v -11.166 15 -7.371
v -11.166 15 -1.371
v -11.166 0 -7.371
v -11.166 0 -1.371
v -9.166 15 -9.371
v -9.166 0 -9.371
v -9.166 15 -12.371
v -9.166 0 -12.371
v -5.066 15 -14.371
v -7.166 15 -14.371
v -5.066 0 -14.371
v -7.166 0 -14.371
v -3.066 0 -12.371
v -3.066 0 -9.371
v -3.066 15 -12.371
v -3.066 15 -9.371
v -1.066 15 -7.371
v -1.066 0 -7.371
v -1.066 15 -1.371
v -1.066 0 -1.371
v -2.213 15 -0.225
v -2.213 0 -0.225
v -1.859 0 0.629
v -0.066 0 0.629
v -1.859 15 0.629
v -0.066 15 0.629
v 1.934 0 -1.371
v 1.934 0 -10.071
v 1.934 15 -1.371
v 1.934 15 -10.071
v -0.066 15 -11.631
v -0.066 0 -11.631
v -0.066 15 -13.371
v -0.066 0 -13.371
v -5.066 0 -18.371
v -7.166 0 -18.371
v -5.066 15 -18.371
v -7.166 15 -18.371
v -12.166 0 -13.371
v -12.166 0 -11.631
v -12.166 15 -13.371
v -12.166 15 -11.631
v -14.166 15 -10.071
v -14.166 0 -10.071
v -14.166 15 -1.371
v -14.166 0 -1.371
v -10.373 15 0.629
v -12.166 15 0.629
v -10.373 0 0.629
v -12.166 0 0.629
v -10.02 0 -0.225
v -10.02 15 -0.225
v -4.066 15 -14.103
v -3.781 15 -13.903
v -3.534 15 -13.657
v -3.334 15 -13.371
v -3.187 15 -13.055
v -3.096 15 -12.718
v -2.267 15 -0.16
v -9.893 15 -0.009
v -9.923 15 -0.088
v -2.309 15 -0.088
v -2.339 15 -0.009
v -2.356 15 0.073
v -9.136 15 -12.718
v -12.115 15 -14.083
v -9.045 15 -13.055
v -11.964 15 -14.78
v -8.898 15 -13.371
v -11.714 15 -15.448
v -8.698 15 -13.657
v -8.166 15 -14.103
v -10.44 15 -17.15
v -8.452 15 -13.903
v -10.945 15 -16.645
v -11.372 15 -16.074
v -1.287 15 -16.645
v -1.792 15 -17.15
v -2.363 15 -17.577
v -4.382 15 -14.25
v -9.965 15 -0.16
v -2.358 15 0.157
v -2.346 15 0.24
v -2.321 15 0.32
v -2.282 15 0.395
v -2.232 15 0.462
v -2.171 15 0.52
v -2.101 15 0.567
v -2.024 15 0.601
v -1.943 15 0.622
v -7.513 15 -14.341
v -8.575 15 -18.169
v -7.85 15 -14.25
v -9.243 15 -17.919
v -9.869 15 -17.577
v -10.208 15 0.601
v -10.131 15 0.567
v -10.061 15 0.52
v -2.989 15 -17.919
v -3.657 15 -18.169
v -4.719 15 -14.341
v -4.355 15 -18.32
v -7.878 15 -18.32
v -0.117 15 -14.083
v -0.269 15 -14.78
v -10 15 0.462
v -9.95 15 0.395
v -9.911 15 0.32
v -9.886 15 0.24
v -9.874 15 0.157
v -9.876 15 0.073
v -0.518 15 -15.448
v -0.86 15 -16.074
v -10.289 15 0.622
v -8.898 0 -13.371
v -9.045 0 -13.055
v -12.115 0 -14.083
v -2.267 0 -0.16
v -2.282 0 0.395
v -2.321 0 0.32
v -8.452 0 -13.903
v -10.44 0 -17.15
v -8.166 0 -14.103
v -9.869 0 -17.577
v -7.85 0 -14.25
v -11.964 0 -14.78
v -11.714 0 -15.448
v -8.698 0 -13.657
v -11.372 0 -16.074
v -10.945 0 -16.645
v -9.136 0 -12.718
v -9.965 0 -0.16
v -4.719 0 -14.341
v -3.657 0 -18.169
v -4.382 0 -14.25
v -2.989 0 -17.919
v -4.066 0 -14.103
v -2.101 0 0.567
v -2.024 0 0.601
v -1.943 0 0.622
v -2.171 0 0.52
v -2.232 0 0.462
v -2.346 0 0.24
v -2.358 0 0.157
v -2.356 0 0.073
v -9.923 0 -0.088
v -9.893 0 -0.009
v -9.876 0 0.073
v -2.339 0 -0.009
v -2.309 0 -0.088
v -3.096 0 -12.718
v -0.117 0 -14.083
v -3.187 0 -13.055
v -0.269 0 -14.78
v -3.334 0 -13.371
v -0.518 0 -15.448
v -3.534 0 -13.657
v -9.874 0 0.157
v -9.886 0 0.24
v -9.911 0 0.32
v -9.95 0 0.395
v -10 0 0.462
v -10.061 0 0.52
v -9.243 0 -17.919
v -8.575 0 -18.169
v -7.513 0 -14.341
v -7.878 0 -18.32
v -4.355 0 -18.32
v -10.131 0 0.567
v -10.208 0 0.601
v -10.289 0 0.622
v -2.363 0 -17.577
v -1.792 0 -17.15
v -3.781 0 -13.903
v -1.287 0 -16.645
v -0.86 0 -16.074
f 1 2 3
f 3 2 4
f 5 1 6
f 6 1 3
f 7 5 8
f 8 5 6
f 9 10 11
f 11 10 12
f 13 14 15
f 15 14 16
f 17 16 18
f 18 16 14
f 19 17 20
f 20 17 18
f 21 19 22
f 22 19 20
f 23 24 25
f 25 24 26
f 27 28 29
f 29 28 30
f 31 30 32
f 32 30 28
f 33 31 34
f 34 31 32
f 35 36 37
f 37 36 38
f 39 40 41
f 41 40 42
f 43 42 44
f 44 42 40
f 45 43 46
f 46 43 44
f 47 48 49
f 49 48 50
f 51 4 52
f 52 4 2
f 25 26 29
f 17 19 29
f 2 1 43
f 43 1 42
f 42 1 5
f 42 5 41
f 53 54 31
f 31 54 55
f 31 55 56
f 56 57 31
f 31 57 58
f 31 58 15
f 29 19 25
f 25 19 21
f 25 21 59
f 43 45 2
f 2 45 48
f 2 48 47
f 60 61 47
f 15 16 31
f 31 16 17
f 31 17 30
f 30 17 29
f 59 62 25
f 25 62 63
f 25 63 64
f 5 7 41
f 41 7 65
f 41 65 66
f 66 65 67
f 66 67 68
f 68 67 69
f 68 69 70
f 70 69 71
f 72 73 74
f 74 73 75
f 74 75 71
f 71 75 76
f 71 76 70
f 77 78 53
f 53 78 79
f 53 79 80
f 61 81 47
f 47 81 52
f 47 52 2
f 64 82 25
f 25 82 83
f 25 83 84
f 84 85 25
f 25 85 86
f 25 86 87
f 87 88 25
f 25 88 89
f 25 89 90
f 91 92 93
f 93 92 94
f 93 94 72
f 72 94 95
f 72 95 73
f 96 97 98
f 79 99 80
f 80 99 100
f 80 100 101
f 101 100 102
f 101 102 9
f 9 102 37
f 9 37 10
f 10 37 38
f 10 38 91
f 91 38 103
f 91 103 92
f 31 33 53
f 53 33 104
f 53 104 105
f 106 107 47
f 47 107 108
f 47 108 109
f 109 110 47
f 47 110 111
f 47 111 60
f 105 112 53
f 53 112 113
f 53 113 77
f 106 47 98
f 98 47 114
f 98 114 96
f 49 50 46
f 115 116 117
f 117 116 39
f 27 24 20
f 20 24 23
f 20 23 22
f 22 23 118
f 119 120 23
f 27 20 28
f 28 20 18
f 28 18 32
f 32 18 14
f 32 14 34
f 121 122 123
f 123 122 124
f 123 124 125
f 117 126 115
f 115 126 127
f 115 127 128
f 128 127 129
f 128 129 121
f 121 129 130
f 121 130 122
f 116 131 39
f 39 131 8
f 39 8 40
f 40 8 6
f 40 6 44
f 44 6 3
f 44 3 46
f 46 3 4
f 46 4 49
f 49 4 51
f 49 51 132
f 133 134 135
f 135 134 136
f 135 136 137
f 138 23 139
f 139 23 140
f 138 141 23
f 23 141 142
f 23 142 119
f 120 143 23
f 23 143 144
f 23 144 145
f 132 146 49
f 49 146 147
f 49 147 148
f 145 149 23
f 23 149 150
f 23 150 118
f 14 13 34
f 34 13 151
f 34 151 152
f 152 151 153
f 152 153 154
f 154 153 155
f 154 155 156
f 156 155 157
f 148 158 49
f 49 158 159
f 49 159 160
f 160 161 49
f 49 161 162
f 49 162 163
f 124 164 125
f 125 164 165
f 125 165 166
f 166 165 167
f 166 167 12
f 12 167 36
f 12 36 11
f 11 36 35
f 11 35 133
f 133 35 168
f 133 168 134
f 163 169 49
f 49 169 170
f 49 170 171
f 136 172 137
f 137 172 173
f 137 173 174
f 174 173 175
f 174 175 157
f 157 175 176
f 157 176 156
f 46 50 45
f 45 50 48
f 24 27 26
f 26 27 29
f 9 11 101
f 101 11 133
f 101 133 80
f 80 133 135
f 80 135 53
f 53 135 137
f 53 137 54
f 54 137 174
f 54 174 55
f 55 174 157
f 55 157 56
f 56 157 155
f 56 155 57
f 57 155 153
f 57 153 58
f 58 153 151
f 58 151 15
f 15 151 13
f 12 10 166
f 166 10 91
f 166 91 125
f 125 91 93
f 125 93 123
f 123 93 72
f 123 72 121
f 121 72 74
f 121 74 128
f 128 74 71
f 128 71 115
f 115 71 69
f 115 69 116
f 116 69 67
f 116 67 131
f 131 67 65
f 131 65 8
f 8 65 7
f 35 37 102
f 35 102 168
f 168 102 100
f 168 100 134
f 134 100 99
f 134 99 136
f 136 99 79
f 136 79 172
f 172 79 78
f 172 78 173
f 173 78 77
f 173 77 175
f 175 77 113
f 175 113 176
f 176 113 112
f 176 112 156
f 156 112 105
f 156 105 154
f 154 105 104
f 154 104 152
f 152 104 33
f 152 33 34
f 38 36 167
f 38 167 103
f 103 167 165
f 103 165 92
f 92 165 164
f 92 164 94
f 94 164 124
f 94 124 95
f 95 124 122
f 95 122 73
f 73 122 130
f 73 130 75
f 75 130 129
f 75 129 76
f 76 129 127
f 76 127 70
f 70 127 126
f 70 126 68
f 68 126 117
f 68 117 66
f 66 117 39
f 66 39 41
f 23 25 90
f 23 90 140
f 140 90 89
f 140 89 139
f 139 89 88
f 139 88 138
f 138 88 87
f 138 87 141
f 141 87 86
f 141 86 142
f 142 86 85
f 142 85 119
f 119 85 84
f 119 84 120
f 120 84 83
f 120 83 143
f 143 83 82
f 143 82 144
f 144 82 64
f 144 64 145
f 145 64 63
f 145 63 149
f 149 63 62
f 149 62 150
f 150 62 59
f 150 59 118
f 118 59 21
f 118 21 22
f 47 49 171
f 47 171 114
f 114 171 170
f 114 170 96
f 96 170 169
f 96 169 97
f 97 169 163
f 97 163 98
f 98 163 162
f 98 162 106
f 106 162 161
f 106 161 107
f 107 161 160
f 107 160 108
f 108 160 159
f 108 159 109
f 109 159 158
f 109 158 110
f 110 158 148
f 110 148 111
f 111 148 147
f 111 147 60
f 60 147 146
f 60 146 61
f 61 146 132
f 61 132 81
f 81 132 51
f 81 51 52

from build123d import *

# Parameters (mm, degrees)
BOSS_EXTRUDE1_DEPTH = 15
CHAMFER1_SIZE       = 2
FILLET1_R           = 2
FILLET3_R           = 5
FILLET4_R           = 0.5


with BuildPart() as part:
    # Sketch2 → Boss-Extrude1 (new body)
    with BuildSketch(Plane(origin=(0, 0, 0), x_dir=(1, 0, 0), z_dir=(0, 1, 0))):
        Polygon((-14.166102689, -0.628958771), (-9.166102689, -0.628958771), (-11.166102689, 1.371041229), (-11.166102689, 7.371041229), (-9.166102689, 9.371041229), (-9.166102689, 14.371041229), (-3.066102689, 14.371041229), (-3.066102689, 9.371041229), (-1.066102689, 7.371041229), (-1.066102689, 1.371041229), (-3.066102689, -0.628958771), (1.933897311, -0.628958771), (1.933897311, 10.071041229), (-0.066102689, 11.631429668), (-0.066102689, 18.371041229), (-12.166102689, 18.371041229), (-12.166102689, 11.631429668), (-14.166102689, 10.071041229), align=None)
    extrude(amount=BOSS_EXTRUDE1_DEPTH)

    # Chamfer1
    chamfer1_edges = [part.edges().sort_by_distance(p)[0] for p in [
        (-14.166102689, 7.5, 0.628958771),
        (1.933897311, 7.5, 0.628958771),
    ]]
    chamfer(chamfer1_edges, length=CHAMFER1_SIZE)

    # Fillet1
    fillet1_edges = [part.edges().sort_by_distance(p)[0] for p in [
        (-3.066102689, 7.5, -14.371041229),
        (-9.166102689, 7.5, -14.371041229),
    ]]
    fillet(fillet1_edges, radius=FILLET1_R)

    # Fillet3
    fillet3_edges = [part.edges().sort_by_distance(p)[0] for p in [
        (-12.166102689, 7.5, -18.371041229),
        (-0.066102689, 7.5, -18.371041229),
    ]]
    fillet(fillet3_edges, radius=FILLET3_R)

    # Fillet4
    fillet4_edges = [part.edges().sort_by_distance(p)[0] for p in [
        (-9.166102689, 7.5, 0.628958771),
        (-3.066102689, 7.5, 0.628958771),
    ]]
    fillet(fillet4_edges, radius=FILLET4_R)


solid = part.part
